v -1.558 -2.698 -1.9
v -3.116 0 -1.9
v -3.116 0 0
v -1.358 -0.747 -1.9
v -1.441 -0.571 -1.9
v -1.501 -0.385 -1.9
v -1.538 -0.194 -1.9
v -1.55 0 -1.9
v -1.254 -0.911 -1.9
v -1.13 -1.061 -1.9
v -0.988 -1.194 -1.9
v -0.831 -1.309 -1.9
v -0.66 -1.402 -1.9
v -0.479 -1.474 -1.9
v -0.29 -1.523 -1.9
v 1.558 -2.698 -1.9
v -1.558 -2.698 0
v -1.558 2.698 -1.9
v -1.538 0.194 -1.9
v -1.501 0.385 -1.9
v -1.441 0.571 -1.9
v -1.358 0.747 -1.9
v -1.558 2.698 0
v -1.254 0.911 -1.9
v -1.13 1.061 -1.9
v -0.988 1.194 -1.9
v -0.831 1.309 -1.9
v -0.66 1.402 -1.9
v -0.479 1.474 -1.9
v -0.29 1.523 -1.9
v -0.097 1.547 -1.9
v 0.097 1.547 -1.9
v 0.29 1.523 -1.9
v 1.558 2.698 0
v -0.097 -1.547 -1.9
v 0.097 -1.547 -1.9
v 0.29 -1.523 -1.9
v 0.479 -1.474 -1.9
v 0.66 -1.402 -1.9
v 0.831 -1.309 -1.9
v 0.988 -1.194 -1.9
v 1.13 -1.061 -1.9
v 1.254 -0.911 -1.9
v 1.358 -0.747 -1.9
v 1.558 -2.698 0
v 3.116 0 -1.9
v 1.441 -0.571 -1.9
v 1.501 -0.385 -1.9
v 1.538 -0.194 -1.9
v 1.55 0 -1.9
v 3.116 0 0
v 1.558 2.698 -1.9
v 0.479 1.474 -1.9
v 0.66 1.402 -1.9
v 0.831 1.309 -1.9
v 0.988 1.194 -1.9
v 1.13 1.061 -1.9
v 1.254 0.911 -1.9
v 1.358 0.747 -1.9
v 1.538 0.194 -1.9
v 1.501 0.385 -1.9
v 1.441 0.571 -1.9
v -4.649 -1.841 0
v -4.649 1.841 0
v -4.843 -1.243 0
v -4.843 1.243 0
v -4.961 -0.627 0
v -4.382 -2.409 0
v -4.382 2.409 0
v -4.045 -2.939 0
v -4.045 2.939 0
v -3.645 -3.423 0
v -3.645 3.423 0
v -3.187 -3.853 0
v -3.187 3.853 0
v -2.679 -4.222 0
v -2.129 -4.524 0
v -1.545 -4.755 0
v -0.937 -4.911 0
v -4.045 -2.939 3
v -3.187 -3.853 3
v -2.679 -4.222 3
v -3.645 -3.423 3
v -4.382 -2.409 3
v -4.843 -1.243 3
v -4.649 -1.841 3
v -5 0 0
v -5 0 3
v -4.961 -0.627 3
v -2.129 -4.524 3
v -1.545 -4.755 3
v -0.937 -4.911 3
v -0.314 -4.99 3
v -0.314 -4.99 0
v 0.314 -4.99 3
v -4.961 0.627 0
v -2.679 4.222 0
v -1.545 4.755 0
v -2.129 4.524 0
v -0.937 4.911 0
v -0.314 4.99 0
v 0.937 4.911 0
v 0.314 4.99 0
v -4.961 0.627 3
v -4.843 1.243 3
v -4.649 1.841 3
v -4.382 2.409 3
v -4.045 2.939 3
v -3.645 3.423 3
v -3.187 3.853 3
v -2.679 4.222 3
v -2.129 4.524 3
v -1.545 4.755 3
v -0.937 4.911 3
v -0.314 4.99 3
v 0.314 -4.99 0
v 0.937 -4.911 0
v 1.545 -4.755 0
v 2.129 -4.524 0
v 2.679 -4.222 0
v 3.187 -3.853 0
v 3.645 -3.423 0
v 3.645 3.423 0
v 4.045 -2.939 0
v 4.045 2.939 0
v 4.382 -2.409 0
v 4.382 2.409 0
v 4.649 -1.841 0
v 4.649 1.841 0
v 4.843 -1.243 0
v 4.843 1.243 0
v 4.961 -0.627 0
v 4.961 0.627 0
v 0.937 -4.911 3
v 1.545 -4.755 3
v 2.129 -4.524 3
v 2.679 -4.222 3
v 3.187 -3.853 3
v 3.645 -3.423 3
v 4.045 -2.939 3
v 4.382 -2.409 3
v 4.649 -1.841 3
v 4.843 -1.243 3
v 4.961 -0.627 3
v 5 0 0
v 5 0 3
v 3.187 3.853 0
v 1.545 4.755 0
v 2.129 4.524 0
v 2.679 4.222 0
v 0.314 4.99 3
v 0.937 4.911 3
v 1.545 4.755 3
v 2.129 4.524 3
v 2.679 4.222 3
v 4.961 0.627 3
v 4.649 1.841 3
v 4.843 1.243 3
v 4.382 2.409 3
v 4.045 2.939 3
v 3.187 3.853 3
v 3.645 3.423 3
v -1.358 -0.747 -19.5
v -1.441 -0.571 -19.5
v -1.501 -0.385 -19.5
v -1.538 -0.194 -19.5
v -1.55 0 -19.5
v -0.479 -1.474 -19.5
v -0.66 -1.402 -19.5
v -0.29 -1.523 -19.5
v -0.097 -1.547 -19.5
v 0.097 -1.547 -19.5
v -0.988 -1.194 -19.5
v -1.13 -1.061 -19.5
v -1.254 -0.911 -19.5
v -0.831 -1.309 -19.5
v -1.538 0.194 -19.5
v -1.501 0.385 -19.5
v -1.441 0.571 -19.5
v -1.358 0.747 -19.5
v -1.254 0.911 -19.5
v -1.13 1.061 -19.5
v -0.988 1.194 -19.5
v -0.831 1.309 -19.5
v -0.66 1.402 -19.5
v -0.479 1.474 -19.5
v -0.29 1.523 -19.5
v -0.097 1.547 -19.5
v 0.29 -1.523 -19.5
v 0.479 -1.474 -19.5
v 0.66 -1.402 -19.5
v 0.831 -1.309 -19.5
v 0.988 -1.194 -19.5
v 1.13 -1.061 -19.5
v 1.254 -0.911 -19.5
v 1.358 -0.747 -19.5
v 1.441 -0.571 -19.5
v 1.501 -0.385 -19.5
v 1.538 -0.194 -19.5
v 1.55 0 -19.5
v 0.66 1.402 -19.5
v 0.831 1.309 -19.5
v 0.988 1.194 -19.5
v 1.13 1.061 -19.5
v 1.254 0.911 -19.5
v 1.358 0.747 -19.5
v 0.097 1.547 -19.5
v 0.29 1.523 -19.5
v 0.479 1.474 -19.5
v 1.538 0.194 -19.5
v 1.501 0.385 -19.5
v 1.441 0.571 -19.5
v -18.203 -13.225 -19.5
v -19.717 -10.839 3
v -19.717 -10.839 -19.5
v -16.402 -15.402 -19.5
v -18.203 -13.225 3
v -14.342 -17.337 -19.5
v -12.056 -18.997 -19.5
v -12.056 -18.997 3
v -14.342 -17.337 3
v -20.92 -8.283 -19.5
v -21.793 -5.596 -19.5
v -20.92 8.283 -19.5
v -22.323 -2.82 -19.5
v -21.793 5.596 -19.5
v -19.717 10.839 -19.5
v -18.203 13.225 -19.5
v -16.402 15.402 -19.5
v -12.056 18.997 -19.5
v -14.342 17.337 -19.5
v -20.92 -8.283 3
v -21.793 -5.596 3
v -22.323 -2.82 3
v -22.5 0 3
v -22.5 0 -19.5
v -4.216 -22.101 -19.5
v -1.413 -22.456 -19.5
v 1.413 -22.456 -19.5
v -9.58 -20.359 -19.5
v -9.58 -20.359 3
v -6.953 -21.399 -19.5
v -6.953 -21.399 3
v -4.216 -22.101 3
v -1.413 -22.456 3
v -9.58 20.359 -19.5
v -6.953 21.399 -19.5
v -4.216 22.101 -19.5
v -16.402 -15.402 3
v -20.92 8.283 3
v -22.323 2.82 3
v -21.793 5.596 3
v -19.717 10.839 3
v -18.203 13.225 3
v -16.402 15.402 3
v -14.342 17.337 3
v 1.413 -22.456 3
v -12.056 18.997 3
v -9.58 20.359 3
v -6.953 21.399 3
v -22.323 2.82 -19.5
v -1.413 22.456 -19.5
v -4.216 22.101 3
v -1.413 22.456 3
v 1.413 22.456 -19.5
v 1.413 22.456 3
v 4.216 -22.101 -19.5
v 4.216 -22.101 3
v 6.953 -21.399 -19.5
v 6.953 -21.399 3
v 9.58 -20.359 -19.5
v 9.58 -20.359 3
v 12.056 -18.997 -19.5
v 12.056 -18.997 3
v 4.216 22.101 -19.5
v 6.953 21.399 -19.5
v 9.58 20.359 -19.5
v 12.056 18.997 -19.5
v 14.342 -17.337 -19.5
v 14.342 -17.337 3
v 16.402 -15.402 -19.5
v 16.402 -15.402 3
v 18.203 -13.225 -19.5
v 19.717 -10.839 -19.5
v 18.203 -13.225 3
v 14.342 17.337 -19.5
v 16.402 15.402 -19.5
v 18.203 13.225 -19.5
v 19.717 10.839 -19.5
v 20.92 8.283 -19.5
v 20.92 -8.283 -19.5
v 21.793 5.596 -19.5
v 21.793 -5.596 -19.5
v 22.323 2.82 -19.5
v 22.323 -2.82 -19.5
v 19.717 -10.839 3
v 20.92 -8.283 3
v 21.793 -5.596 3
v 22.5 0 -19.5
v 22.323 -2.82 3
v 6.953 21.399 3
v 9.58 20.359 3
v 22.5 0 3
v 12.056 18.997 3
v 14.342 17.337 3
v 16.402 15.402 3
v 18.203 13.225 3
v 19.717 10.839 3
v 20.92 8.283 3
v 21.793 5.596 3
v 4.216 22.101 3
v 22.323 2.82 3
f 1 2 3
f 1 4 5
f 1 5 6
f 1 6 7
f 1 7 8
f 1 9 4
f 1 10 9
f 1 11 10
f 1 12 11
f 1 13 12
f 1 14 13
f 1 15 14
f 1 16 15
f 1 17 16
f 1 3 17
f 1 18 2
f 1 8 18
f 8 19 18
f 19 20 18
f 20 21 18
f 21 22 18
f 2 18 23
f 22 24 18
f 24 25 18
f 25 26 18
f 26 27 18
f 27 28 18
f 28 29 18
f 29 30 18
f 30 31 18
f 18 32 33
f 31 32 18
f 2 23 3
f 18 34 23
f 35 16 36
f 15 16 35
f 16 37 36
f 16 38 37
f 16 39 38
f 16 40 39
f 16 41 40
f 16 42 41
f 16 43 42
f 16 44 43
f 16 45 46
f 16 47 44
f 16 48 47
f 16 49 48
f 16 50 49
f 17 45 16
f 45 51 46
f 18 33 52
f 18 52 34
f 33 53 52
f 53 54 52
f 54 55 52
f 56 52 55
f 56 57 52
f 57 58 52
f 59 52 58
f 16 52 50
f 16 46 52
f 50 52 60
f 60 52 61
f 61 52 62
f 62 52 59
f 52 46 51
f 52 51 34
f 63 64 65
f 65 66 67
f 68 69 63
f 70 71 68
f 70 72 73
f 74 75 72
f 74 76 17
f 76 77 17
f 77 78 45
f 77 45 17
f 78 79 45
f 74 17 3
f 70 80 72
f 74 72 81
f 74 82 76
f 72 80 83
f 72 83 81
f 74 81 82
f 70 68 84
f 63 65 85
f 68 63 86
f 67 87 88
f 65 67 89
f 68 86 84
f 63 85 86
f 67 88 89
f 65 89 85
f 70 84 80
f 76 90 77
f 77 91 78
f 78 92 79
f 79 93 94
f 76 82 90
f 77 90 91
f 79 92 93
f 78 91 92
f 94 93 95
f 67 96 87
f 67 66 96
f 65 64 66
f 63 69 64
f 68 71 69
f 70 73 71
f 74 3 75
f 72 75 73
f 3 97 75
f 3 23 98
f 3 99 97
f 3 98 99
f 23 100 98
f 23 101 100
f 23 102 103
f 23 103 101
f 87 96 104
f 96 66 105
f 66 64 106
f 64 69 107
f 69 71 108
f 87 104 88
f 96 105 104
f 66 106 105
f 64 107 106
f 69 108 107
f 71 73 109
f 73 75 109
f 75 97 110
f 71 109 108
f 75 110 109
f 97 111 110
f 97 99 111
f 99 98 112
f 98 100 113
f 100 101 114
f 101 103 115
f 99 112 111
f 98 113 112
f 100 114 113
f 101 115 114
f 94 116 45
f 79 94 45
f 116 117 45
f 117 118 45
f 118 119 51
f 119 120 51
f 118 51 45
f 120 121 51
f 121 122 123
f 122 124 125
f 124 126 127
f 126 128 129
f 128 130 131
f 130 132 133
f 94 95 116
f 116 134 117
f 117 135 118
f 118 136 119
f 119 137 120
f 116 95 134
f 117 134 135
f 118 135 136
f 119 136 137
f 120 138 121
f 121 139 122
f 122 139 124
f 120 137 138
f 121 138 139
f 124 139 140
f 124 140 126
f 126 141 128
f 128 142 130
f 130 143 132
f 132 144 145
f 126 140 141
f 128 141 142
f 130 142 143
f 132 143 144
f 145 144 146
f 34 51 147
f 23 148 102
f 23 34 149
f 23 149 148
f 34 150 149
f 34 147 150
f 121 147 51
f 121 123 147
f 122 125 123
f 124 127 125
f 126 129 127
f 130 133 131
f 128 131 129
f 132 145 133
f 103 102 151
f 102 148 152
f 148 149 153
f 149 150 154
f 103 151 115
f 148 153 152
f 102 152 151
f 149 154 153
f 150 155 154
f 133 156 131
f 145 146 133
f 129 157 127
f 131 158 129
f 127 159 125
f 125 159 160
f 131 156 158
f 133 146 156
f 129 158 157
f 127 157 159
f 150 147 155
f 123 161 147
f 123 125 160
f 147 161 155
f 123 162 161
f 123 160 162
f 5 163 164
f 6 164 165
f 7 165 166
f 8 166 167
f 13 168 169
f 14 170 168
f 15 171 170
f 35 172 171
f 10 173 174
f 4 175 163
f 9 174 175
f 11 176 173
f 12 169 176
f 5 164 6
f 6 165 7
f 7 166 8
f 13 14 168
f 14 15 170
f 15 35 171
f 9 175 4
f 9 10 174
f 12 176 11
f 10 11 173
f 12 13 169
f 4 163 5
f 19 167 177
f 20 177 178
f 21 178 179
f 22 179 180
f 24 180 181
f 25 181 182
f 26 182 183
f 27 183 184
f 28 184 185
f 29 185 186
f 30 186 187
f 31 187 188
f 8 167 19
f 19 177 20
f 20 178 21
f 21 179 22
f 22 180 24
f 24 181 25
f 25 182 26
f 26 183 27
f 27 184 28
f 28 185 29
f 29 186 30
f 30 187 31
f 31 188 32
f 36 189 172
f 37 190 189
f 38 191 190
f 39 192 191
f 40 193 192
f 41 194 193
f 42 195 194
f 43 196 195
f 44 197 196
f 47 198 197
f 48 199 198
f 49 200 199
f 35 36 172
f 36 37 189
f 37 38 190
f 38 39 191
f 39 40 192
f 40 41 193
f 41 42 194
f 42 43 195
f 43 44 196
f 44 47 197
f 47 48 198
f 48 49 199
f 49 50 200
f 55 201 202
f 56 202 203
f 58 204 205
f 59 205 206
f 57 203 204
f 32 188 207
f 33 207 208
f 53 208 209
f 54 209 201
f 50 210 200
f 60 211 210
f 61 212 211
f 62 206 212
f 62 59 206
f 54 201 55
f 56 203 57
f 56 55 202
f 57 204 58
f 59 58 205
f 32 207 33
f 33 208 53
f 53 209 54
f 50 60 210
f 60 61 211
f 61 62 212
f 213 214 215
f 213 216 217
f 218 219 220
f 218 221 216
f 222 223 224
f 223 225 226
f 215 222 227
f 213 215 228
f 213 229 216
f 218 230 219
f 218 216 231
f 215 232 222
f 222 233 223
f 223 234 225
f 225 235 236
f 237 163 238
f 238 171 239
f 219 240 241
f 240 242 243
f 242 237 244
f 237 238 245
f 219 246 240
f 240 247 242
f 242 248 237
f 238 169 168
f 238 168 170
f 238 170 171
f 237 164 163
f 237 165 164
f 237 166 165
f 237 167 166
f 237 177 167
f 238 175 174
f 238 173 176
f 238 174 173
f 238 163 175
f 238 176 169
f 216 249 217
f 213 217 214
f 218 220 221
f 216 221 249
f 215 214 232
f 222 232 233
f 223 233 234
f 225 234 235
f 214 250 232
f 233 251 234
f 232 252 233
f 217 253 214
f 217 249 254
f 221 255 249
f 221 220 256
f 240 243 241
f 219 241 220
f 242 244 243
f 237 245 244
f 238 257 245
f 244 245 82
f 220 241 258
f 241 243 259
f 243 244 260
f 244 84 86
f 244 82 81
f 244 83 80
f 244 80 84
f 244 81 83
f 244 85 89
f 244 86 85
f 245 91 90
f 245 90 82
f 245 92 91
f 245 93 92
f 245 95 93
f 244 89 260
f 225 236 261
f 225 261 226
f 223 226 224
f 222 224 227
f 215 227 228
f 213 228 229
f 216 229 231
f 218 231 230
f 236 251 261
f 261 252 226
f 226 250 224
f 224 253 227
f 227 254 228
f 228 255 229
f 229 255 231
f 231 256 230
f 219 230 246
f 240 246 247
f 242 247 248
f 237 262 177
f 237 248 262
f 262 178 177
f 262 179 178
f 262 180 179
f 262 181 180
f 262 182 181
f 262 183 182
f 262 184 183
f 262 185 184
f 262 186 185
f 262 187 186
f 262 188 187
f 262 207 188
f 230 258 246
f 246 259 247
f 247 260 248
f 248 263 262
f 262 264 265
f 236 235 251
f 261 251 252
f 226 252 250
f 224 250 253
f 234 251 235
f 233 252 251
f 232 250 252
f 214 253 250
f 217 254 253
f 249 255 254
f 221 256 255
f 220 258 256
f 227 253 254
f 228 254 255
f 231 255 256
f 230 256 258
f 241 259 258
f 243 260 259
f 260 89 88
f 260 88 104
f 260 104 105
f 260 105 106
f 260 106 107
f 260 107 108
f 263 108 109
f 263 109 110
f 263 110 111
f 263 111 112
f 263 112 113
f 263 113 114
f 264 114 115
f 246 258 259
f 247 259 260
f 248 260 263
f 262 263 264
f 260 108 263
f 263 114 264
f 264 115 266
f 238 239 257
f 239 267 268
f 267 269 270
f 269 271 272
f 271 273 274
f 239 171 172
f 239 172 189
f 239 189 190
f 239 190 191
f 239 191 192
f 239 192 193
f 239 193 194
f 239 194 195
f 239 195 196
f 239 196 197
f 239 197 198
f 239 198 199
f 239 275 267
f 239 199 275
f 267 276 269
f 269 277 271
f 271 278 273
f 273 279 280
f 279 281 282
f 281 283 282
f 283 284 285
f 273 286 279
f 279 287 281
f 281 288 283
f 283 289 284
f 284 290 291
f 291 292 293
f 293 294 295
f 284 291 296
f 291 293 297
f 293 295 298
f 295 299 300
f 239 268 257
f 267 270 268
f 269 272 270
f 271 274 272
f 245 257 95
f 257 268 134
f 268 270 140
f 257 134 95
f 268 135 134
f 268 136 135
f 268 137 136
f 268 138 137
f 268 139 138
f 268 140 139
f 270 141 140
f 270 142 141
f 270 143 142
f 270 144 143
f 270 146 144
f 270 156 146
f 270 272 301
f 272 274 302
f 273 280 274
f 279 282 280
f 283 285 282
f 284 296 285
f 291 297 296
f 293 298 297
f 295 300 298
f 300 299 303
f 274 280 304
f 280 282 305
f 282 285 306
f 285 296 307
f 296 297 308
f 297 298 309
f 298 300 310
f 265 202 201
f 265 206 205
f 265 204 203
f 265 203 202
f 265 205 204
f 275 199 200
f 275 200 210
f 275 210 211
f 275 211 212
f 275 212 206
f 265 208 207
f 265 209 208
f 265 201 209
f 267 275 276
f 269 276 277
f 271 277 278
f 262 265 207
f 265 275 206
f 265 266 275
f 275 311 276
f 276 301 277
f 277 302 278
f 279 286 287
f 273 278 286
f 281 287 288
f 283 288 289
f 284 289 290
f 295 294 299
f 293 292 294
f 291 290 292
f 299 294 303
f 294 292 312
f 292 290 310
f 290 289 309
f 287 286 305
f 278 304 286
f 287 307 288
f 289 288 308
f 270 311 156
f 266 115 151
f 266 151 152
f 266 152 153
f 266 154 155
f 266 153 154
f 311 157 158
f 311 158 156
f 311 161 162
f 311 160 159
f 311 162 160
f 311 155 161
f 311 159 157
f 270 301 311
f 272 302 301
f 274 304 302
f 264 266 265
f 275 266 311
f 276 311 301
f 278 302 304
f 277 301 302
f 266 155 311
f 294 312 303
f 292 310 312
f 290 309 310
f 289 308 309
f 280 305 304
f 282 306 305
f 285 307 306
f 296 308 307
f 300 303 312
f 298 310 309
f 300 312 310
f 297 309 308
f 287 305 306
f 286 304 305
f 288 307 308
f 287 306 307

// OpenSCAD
$fn = 50;


difference() {
	union() {
		translate(v = [0, 0, -19.5000000000]) {
			cylinder(h = 22.5000000000, r = 22.5000000000);
		}
	}
	union() {
		translate(v = [0, 0, 0]) {
			rotate(a = [0, 0, 0]) {
				difference() {
					union() {
						translate(v = [0, 0, -1.9000000000]) {
							linear_extrude(height = 1.9000000000) {
								polygon(points = [[3.1158000000, 0.0000000000], [1.5579000000, 2.6983619531], [-1.5579000000, 2.6983619531], [-3.1158000000, 0.0000000000], [-1.5579000000, -2.6983619531], [1.5579000000, -2.6983619531]]);
							}
						}
					}
					union();
				}
			}
		}
		#cylinder(h = 3, r = 5.0000000000);
		#translate(v = [0, 0, -100.0000000000]) {
			cylinder(h = 200, r = 1.5500000000);
		}
	}
}
